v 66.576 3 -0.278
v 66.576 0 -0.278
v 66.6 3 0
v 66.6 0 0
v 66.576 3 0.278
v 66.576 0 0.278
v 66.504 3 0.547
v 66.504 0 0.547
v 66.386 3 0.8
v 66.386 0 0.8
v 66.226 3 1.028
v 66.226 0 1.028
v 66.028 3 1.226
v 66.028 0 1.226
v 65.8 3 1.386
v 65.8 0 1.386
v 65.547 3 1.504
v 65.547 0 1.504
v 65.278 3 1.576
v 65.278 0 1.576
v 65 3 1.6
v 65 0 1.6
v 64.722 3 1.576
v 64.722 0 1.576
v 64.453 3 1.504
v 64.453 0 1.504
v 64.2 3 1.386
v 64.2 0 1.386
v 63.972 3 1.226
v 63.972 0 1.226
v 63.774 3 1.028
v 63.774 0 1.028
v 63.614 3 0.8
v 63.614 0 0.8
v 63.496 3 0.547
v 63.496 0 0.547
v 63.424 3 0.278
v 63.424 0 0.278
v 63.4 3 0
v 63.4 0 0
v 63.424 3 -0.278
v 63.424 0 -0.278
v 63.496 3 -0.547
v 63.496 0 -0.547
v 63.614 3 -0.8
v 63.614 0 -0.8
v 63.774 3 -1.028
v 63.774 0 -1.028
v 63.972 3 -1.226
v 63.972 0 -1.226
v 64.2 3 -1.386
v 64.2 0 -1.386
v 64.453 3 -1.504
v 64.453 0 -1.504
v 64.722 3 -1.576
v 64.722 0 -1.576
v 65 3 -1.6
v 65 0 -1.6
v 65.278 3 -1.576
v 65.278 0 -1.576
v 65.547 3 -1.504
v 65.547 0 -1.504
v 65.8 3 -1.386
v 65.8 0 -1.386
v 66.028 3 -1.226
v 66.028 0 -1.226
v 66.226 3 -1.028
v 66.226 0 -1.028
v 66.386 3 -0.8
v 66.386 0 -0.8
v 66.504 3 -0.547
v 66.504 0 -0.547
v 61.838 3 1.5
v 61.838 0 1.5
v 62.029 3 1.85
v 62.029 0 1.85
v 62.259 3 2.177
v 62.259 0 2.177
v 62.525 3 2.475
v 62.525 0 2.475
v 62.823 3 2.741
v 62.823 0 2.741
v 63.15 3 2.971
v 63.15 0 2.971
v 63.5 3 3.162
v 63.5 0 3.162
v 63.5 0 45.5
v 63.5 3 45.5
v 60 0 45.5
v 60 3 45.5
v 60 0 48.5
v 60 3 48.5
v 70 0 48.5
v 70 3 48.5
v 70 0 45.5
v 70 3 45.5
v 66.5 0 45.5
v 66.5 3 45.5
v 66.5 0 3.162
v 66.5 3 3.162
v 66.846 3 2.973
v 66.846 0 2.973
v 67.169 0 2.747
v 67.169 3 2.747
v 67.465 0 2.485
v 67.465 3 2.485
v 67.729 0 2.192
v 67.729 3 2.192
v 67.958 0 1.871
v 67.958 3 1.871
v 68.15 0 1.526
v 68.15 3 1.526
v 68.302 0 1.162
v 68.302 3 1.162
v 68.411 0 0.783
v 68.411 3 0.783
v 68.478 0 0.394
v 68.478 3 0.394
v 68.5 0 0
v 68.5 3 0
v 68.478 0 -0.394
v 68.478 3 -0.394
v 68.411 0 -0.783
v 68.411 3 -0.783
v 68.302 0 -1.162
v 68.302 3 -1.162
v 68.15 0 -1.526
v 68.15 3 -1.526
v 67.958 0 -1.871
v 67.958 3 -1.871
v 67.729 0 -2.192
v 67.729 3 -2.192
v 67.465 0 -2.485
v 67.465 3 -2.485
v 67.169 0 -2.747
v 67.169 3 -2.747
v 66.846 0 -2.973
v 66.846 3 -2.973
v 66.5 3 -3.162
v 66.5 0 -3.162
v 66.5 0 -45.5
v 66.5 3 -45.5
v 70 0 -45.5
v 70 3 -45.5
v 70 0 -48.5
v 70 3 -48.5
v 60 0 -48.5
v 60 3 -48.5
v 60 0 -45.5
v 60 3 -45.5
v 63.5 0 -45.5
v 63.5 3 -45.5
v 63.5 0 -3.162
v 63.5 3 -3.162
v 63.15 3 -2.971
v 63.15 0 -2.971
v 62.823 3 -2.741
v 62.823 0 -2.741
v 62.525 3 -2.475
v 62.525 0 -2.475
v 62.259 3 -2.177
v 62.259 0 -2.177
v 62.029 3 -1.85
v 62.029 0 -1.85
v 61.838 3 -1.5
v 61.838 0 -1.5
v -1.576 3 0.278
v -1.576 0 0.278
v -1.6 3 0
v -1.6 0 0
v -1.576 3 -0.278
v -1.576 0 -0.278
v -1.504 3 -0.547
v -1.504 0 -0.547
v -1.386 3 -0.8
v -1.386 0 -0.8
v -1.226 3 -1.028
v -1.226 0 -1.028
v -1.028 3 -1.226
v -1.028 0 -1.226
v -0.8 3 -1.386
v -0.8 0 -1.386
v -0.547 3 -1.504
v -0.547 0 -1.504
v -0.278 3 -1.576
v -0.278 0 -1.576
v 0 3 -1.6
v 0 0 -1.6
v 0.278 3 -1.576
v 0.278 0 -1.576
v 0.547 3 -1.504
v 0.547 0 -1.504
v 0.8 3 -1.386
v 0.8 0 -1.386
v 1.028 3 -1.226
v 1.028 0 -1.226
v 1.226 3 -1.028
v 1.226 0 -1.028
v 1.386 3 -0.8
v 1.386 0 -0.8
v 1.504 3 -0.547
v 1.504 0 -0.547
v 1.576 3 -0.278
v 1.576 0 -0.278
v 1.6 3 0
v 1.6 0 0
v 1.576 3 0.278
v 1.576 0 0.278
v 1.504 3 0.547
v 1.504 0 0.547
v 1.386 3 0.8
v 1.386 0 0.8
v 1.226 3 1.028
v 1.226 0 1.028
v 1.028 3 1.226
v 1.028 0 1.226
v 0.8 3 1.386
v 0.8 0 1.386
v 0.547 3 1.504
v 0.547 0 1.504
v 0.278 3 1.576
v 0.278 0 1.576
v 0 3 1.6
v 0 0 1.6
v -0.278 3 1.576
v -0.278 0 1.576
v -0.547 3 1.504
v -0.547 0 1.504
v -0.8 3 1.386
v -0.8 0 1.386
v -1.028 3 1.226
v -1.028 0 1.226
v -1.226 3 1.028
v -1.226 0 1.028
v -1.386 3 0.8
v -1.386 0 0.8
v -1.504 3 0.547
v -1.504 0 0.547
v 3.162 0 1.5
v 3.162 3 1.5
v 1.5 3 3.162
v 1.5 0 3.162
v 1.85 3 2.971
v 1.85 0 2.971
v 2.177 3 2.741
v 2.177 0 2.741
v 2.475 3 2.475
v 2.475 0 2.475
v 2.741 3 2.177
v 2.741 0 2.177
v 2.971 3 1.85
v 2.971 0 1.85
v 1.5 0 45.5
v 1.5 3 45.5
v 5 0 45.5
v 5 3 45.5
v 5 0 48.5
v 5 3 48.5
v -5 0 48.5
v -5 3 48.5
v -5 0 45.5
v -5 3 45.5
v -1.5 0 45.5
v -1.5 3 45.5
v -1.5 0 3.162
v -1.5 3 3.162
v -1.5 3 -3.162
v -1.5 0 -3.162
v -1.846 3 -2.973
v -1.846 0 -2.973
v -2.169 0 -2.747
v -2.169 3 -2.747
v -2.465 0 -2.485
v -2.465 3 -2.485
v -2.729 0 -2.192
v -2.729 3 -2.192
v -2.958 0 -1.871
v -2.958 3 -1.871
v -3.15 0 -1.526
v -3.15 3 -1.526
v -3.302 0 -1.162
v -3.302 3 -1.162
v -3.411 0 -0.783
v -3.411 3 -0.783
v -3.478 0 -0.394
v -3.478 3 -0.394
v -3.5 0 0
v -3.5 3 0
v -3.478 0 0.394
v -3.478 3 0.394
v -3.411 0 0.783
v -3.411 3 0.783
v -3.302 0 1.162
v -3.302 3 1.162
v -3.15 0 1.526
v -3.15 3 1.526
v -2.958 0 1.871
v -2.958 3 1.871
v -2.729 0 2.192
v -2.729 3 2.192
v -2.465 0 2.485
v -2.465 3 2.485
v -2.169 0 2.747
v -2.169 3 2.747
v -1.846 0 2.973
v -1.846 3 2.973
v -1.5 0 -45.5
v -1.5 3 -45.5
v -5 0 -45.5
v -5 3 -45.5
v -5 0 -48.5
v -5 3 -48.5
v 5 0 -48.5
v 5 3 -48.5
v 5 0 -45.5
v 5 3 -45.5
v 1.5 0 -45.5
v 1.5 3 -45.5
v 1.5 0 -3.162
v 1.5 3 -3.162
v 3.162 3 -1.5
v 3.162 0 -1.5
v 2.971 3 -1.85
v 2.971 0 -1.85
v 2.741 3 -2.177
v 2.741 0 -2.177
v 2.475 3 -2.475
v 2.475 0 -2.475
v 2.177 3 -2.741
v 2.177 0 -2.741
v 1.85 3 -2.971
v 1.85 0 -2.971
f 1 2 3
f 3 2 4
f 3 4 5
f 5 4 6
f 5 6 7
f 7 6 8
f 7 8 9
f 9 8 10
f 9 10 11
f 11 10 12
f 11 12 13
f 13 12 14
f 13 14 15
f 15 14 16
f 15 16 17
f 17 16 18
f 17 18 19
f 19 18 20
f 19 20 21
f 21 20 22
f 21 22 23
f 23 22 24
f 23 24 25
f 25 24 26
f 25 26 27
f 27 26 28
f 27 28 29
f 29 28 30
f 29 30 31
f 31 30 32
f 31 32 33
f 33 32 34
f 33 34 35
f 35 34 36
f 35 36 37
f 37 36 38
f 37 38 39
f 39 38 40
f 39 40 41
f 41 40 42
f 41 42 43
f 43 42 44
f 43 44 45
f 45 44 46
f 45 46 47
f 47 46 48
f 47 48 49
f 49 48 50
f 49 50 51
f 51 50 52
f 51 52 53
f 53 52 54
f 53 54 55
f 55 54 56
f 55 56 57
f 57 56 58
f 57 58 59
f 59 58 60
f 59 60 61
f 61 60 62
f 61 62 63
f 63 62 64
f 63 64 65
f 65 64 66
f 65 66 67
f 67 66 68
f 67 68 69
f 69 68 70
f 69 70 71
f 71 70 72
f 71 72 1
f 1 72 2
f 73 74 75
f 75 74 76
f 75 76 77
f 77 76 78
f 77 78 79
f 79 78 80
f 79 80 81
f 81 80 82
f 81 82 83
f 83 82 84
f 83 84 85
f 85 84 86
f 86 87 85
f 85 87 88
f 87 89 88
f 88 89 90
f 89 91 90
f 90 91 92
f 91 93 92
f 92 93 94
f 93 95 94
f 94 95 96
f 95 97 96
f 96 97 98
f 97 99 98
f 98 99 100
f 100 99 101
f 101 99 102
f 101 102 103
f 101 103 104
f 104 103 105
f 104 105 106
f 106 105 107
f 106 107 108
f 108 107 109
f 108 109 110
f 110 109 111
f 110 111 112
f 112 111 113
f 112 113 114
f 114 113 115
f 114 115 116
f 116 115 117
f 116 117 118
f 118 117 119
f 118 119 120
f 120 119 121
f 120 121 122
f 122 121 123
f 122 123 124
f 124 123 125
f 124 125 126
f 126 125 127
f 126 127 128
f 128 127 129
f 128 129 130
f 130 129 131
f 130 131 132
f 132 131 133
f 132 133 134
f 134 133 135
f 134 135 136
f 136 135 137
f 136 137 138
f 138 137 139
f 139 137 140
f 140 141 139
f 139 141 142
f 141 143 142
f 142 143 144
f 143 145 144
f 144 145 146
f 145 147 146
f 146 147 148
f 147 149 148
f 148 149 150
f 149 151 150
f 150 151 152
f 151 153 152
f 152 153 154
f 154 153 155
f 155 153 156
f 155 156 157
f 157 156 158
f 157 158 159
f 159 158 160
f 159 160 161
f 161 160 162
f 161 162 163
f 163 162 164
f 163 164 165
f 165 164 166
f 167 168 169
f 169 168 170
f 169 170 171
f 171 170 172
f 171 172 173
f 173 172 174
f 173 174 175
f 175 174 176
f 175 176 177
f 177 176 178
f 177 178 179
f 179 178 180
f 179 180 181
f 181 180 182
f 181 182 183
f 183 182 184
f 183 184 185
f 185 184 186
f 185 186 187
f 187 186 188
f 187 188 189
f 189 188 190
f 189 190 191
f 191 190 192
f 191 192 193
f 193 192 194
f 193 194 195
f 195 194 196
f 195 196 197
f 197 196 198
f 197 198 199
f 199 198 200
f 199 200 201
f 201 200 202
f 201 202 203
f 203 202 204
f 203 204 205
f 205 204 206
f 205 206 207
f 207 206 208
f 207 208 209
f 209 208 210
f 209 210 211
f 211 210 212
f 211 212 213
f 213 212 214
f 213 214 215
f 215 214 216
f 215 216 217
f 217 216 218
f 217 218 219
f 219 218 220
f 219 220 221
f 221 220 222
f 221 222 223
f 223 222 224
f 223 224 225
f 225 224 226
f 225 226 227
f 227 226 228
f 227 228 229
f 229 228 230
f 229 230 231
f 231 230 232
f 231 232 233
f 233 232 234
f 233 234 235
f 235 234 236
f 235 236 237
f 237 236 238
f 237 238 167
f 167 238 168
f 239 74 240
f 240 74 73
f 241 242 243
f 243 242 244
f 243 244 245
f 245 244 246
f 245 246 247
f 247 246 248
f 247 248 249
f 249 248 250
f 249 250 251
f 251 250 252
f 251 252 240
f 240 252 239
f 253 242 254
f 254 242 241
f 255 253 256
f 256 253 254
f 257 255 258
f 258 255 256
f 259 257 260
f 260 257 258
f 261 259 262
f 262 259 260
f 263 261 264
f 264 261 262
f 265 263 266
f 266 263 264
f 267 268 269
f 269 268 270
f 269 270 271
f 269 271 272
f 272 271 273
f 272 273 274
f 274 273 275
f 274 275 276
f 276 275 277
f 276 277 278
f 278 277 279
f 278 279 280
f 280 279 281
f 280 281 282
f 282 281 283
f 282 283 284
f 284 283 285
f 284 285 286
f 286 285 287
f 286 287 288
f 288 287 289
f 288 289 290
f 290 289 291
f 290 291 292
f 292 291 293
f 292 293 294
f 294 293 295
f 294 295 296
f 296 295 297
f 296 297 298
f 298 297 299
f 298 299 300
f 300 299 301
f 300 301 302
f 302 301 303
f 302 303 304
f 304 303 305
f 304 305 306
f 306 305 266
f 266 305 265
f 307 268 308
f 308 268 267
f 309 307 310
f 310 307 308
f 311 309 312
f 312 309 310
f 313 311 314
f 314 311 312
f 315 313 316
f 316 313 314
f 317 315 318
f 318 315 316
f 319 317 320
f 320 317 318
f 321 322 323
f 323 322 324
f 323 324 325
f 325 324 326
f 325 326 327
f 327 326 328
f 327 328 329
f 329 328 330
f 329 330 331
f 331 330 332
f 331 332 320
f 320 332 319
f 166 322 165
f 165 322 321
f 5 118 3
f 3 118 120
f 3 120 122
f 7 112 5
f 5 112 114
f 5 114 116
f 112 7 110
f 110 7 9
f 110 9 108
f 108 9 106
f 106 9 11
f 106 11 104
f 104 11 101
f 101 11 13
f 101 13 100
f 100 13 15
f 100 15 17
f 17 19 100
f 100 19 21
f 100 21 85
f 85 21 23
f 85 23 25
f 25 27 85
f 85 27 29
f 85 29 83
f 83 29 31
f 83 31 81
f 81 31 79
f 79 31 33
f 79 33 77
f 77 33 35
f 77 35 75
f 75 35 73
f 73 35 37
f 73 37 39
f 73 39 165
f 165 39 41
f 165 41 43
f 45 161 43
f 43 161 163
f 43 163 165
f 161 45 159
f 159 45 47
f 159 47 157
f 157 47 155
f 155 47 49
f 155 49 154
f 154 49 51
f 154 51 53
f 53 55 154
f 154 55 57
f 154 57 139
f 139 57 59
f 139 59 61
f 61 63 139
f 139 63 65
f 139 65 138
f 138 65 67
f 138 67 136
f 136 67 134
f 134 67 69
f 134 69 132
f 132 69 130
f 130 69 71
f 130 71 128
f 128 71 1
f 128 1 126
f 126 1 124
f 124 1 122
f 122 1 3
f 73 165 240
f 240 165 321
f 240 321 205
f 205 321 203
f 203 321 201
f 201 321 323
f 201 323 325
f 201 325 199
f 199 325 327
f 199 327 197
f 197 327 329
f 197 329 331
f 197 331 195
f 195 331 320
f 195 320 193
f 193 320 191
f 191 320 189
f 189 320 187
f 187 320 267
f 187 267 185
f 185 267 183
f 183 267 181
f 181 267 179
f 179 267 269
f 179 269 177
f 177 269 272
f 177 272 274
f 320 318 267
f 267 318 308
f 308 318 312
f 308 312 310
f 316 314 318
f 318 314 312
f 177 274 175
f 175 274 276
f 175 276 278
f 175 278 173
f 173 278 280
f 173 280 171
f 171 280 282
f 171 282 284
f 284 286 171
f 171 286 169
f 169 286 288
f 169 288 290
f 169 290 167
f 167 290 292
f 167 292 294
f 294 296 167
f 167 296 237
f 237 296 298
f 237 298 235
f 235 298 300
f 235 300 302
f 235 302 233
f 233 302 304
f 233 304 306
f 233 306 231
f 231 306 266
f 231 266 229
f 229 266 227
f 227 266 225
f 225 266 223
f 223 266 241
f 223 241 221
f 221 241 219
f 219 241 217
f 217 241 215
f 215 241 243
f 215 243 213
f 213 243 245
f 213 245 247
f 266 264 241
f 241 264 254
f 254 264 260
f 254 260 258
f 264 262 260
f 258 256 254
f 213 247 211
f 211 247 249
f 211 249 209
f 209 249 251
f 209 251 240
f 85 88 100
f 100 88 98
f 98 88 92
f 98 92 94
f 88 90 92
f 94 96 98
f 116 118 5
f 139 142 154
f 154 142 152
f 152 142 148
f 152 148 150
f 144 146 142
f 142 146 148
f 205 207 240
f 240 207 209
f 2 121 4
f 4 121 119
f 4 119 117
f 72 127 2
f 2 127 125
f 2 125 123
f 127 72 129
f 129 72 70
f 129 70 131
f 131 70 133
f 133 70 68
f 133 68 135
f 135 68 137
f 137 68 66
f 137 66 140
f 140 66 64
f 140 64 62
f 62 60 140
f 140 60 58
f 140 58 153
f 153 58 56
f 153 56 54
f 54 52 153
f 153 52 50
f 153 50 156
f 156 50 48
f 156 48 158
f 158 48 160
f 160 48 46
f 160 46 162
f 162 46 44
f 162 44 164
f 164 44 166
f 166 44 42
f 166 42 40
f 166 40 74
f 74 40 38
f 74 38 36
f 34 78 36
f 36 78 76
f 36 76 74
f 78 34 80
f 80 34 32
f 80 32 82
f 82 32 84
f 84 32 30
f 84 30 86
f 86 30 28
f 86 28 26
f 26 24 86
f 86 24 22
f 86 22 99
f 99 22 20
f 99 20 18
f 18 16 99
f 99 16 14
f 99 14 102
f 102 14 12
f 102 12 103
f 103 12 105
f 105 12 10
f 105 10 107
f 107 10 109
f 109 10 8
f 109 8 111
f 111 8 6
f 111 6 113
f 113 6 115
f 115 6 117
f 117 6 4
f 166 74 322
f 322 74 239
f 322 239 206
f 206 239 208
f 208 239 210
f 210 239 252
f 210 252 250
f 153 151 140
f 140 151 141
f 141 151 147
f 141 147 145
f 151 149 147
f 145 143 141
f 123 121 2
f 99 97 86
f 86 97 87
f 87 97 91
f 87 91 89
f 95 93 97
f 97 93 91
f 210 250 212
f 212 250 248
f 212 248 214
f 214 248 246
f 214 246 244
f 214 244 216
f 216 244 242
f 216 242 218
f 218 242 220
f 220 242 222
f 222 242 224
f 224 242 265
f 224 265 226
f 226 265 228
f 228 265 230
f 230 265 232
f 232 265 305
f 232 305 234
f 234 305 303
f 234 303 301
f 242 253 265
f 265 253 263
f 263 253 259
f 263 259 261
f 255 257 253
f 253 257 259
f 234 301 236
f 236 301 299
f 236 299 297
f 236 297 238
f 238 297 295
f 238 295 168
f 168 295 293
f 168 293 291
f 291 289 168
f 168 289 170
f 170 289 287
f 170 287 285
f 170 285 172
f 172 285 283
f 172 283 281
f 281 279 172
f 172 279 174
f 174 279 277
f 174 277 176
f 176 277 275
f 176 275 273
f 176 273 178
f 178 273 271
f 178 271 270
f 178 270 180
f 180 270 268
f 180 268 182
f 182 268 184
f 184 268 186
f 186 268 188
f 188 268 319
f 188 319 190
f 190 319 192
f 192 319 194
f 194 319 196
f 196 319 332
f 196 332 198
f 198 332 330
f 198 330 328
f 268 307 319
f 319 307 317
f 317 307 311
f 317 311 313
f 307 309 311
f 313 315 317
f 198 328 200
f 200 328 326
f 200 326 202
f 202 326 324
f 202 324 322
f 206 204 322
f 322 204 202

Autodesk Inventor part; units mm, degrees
ref_plane "YZ Plane" through (0, 0, 0) normal (1, 0, 0) x (0, 1, 0)
ref_plane "XZ Plane" through (0, 0, 0) normal (0, 1, 0) x (-1, 0, 0)
ref_plane "XY Plane" through (0, 0, 0) normal (0, 0, 1) x (1, 0, 0)
sketch "Skizze1" plane through (0, 0, 0) normal (0, 1, 0) x (-1, 0, 0)
  circle A0 centre (0, 0) radius 1.6
  circle A1 centre (0, 0) radius 3.5
  line L0 (-1.5, 3.1623) -> (-1.5, 48.5)
  line L1 (-1.5, 48.5) -> (1.5, 48.5)
  line L2 (1.5, 48.5) -> (1.5, 3.1623)
  line L3 (0, -67.9) -> (0, 67.9) construction
  line L4 (-40, 0) -> (12.5, 0) construction
  line L5 (-5, 45.5) -> (5, 45.5)
  line L6 (5, 45.5) -> (5, 48.5)
  line L7 (5, 48.5) -> (-5, 48.5)
  line L8 (-5, 48.5) -> (-5, 45.5)
  line L9 (-5, 45.5) -> (5, 48.5) construction
  line L10 (5, 45.5) -> (-5, 48.5) construction
  line L11 (-1.5, -3.1623) -> (-1.5, -48.5)
  line L12 (-1.5, -48.5) -> (1.5, -48.5)
  line L13 (1.5, -48.5) -> (1.5, -3.1623)
  line L14 (-5, -45.5) -> (5, -45.5)
  line L15 (5, -45.5) -> (5, -48.5)
  line L16 (5, -48.5) -> (-5, -48.5)
  line L17 (-5, -48.5) -> (-5, -45.5)
  line L18 (-5, -45.5) -> (5, -48.5) construction
  line L19 (5, -45.5) -> (-5, -48.5) construction
  line L20 (-3.1623, 1.5) -> (-32.5, 1.5)
  line L21 (-32.5, 1.5) -> (-32.5, -1.5)
  line L22 (-32.5, -1.5) -> (-3.1623, -1.5)
  line L23 (-3.1623, -1.5) -> (-3.1623, 1.5)
  point P0 (0, 47)
  point P1 (0, -47)
  point P2 (-3.1623, -1.5)
  point P3 (-1.5, -45.5)
  point P4 (1.5, -45.5)
  point P5 (1.5, -3.1623)
  point P6 (1.5, 45.5)
  point P7 (-1.5, 45.5)
  dimension "d0" = 3.2
  dimension "d1" = 7
  dimension "d2" = 3
  dimension "d3" = 48.5
  dimension "d4" = 3
  dimension "d5" = 10
  dimension "d6" = 3
  dimension "d7" = 32.5
extrude "Extrusion1" add sketch "Skizze1" along normal blind 3
mirror "Spiegeln1" about plane through (32.5, 0, 1.5) normal (1, 0, 0)
properties part number "RSP-Spacer"
